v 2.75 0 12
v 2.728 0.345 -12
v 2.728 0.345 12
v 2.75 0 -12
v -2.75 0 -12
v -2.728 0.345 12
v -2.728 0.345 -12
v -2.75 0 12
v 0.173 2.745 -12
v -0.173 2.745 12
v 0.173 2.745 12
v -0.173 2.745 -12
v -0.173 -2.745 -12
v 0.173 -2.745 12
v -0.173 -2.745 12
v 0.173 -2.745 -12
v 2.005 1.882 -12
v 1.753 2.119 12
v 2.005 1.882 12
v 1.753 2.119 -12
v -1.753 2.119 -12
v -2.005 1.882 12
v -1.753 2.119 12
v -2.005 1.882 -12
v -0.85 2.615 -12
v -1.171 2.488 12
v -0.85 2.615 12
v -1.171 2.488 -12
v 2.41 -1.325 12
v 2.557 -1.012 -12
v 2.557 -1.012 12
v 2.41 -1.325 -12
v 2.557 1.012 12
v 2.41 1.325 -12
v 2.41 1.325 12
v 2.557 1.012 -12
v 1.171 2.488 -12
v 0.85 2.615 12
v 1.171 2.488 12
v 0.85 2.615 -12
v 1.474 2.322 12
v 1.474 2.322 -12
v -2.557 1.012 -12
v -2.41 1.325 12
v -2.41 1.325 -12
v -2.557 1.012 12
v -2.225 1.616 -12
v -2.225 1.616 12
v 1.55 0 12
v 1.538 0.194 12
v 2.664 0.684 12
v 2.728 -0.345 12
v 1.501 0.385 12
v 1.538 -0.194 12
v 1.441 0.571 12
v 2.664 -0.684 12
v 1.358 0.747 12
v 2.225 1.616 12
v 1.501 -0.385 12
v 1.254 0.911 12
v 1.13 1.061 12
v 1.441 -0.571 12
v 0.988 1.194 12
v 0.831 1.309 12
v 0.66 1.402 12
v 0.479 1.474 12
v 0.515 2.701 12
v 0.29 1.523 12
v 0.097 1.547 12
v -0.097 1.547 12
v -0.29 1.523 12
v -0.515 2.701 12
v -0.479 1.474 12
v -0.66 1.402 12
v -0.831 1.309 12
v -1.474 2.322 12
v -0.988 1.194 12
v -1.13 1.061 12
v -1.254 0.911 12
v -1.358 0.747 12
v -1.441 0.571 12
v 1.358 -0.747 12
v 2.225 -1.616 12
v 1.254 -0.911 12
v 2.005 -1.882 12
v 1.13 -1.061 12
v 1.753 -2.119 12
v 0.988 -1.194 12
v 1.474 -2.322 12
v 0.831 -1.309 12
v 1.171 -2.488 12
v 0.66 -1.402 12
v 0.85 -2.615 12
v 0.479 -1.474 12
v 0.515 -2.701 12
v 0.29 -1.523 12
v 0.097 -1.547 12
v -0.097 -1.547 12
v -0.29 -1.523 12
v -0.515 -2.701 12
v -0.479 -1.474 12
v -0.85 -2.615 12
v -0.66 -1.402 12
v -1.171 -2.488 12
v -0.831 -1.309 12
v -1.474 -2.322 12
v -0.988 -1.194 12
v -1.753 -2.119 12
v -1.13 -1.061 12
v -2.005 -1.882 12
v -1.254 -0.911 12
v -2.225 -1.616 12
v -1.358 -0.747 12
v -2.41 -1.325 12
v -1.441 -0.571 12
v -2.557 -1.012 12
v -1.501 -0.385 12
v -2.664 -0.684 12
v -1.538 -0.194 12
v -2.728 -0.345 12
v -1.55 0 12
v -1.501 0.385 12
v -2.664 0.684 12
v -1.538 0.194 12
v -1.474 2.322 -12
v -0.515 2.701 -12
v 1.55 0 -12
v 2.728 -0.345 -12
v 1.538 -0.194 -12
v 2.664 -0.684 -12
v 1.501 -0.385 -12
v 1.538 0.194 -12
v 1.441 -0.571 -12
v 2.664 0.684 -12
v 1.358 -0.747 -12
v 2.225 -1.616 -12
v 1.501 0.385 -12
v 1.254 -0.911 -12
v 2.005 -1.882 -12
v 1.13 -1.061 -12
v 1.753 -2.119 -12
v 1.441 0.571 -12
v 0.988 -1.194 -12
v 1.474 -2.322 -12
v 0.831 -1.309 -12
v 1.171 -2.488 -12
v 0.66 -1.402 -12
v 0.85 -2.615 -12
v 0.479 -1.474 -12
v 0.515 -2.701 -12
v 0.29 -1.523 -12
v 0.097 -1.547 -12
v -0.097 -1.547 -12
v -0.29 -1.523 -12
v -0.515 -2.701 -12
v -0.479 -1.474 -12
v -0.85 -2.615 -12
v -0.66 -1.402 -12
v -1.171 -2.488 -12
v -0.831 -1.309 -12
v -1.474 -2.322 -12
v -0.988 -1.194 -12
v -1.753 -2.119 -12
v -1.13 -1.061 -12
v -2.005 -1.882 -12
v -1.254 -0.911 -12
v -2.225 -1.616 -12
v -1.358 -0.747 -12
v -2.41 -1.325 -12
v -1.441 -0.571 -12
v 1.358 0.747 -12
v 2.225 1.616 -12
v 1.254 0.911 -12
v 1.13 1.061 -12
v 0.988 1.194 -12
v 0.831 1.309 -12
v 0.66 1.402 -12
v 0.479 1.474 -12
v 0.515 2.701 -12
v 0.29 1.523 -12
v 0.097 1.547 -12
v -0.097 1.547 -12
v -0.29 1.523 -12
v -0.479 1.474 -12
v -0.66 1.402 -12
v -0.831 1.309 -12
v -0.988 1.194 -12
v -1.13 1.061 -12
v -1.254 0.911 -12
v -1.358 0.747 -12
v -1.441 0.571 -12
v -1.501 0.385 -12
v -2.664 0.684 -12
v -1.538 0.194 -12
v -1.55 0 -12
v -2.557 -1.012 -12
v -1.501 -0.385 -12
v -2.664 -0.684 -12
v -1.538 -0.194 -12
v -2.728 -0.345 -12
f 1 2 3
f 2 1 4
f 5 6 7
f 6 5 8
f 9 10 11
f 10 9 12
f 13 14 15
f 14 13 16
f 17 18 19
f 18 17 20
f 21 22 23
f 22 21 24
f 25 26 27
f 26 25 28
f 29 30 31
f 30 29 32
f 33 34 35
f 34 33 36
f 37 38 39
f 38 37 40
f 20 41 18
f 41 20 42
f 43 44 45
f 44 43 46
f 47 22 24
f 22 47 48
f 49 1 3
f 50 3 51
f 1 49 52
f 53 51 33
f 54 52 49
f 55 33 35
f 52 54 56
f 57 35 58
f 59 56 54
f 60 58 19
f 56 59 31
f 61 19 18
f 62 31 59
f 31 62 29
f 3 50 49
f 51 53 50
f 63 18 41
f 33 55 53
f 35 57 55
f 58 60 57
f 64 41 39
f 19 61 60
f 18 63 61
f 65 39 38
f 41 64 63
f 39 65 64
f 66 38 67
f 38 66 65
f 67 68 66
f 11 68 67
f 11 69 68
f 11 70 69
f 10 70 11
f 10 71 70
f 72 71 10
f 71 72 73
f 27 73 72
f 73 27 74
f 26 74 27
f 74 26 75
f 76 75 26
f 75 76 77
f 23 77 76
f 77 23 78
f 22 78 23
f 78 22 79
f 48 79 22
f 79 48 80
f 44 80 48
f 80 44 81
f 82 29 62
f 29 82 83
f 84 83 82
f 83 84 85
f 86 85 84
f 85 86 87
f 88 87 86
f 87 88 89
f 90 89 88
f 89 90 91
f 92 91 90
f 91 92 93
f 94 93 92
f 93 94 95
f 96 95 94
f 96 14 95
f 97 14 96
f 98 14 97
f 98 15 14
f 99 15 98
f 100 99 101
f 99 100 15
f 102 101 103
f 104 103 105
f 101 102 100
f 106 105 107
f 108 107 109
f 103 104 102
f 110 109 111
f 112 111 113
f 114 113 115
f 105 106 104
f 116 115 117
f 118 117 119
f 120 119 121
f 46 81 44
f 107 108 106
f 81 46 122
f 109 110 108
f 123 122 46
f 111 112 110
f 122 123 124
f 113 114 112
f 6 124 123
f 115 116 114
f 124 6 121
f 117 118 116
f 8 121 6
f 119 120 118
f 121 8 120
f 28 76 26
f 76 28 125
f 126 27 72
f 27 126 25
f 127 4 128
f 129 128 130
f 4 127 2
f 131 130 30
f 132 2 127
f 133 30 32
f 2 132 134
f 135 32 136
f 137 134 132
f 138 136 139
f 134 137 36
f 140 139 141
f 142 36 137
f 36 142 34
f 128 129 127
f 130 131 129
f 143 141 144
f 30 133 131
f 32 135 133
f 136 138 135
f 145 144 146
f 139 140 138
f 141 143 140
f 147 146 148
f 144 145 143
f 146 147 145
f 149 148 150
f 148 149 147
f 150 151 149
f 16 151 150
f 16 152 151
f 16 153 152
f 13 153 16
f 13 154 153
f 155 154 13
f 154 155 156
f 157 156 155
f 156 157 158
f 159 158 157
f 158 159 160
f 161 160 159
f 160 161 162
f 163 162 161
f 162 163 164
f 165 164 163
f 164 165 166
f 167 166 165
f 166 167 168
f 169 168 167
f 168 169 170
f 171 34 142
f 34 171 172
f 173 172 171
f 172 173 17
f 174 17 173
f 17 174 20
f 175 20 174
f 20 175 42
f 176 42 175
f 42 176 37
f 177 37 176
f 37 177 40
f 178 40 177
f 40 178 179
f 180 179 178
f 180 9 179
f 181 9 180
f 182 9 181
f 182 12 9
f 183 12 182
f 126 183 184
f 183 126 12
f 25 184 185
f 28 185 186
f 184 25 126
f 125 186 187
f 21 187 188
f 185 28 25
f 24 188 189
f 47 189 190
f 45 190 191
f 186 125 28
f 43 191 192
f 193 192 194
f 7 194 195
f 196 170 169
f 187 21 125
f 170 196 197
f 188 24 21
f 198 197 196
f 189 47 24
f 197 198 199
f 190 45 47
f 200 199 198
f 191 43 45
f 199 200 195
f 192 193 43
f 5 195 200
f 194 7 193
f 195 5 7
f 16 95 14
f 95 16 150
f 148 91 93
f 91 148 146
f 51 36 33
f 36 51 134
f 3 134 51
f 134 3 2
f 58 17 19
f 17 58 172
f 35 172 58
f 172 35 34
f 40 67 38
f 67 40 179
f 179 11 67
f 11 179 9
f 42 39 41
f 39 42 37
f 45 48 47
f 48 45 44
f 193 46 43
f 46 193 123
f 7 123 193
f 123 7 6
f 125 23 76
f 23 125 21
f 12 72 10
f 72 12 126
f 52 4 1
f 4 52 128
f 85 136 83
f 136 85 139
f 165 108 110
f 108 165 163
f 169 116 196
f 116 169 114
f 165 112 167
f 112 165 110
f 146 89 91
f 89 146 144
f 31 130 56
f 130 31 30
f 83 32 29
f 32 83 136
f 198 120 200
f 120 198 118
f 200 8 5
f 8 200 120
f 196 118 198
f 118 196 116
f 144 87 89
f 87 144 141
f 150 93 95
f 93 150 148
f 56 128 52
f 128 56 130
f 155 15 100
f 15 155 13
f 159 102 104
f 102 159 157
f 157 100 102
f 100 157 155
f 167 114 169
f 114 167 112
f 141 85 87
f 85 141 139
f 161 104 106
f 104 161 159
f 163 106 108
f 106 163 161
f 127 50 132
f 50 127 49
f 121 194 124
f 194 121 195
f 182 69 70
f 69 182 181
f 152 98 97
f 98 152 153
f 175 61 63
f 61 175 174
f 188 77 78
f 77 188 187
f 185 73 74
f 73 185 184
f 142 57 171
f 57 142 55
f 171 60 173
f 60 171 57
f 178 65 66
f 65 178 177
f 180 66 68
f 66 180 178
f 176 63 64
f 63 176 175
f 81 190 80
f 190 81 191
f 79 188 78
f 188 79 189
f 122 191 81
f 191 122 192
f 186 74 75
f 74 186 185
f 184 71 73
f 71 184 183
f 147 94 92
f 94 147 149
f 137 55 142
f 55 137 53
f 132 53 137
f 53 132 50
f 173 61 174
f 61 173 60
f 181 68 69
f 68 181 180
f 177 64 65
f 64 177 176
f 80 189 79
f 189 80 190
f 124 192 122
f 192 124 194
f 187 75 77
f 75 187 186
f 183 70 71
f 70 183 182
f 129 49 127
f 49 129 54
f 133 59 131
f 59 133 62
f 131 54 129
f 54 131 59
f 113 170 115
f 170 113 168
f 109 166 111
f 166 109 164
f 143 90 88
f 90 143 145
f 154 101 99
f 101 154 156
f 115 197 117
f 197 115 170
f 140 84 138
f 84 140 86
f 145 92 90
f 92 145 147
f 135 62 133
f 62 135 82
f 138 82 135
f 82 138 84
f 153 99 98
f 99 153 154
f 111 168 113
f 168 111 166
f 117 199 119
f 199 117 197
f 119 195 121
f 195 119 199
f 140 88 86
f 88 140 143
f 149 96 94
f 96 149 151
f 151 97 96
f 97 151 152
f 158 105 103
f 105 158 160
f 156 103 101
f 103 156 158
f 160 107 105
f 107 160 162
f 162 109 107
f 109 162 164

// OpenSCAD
$fn = 50;


difference() {
	union() {
		translate(v = [0, 0, -12.0000000000]) {
			cylinder(h = 24, r = 2.7500000000);
		}
	}
	union() {
		translate(v = [0, 0, -100.0000000000]) {
			cylinder(h = 200, r = 1.5500000000);
		}
	}
}
